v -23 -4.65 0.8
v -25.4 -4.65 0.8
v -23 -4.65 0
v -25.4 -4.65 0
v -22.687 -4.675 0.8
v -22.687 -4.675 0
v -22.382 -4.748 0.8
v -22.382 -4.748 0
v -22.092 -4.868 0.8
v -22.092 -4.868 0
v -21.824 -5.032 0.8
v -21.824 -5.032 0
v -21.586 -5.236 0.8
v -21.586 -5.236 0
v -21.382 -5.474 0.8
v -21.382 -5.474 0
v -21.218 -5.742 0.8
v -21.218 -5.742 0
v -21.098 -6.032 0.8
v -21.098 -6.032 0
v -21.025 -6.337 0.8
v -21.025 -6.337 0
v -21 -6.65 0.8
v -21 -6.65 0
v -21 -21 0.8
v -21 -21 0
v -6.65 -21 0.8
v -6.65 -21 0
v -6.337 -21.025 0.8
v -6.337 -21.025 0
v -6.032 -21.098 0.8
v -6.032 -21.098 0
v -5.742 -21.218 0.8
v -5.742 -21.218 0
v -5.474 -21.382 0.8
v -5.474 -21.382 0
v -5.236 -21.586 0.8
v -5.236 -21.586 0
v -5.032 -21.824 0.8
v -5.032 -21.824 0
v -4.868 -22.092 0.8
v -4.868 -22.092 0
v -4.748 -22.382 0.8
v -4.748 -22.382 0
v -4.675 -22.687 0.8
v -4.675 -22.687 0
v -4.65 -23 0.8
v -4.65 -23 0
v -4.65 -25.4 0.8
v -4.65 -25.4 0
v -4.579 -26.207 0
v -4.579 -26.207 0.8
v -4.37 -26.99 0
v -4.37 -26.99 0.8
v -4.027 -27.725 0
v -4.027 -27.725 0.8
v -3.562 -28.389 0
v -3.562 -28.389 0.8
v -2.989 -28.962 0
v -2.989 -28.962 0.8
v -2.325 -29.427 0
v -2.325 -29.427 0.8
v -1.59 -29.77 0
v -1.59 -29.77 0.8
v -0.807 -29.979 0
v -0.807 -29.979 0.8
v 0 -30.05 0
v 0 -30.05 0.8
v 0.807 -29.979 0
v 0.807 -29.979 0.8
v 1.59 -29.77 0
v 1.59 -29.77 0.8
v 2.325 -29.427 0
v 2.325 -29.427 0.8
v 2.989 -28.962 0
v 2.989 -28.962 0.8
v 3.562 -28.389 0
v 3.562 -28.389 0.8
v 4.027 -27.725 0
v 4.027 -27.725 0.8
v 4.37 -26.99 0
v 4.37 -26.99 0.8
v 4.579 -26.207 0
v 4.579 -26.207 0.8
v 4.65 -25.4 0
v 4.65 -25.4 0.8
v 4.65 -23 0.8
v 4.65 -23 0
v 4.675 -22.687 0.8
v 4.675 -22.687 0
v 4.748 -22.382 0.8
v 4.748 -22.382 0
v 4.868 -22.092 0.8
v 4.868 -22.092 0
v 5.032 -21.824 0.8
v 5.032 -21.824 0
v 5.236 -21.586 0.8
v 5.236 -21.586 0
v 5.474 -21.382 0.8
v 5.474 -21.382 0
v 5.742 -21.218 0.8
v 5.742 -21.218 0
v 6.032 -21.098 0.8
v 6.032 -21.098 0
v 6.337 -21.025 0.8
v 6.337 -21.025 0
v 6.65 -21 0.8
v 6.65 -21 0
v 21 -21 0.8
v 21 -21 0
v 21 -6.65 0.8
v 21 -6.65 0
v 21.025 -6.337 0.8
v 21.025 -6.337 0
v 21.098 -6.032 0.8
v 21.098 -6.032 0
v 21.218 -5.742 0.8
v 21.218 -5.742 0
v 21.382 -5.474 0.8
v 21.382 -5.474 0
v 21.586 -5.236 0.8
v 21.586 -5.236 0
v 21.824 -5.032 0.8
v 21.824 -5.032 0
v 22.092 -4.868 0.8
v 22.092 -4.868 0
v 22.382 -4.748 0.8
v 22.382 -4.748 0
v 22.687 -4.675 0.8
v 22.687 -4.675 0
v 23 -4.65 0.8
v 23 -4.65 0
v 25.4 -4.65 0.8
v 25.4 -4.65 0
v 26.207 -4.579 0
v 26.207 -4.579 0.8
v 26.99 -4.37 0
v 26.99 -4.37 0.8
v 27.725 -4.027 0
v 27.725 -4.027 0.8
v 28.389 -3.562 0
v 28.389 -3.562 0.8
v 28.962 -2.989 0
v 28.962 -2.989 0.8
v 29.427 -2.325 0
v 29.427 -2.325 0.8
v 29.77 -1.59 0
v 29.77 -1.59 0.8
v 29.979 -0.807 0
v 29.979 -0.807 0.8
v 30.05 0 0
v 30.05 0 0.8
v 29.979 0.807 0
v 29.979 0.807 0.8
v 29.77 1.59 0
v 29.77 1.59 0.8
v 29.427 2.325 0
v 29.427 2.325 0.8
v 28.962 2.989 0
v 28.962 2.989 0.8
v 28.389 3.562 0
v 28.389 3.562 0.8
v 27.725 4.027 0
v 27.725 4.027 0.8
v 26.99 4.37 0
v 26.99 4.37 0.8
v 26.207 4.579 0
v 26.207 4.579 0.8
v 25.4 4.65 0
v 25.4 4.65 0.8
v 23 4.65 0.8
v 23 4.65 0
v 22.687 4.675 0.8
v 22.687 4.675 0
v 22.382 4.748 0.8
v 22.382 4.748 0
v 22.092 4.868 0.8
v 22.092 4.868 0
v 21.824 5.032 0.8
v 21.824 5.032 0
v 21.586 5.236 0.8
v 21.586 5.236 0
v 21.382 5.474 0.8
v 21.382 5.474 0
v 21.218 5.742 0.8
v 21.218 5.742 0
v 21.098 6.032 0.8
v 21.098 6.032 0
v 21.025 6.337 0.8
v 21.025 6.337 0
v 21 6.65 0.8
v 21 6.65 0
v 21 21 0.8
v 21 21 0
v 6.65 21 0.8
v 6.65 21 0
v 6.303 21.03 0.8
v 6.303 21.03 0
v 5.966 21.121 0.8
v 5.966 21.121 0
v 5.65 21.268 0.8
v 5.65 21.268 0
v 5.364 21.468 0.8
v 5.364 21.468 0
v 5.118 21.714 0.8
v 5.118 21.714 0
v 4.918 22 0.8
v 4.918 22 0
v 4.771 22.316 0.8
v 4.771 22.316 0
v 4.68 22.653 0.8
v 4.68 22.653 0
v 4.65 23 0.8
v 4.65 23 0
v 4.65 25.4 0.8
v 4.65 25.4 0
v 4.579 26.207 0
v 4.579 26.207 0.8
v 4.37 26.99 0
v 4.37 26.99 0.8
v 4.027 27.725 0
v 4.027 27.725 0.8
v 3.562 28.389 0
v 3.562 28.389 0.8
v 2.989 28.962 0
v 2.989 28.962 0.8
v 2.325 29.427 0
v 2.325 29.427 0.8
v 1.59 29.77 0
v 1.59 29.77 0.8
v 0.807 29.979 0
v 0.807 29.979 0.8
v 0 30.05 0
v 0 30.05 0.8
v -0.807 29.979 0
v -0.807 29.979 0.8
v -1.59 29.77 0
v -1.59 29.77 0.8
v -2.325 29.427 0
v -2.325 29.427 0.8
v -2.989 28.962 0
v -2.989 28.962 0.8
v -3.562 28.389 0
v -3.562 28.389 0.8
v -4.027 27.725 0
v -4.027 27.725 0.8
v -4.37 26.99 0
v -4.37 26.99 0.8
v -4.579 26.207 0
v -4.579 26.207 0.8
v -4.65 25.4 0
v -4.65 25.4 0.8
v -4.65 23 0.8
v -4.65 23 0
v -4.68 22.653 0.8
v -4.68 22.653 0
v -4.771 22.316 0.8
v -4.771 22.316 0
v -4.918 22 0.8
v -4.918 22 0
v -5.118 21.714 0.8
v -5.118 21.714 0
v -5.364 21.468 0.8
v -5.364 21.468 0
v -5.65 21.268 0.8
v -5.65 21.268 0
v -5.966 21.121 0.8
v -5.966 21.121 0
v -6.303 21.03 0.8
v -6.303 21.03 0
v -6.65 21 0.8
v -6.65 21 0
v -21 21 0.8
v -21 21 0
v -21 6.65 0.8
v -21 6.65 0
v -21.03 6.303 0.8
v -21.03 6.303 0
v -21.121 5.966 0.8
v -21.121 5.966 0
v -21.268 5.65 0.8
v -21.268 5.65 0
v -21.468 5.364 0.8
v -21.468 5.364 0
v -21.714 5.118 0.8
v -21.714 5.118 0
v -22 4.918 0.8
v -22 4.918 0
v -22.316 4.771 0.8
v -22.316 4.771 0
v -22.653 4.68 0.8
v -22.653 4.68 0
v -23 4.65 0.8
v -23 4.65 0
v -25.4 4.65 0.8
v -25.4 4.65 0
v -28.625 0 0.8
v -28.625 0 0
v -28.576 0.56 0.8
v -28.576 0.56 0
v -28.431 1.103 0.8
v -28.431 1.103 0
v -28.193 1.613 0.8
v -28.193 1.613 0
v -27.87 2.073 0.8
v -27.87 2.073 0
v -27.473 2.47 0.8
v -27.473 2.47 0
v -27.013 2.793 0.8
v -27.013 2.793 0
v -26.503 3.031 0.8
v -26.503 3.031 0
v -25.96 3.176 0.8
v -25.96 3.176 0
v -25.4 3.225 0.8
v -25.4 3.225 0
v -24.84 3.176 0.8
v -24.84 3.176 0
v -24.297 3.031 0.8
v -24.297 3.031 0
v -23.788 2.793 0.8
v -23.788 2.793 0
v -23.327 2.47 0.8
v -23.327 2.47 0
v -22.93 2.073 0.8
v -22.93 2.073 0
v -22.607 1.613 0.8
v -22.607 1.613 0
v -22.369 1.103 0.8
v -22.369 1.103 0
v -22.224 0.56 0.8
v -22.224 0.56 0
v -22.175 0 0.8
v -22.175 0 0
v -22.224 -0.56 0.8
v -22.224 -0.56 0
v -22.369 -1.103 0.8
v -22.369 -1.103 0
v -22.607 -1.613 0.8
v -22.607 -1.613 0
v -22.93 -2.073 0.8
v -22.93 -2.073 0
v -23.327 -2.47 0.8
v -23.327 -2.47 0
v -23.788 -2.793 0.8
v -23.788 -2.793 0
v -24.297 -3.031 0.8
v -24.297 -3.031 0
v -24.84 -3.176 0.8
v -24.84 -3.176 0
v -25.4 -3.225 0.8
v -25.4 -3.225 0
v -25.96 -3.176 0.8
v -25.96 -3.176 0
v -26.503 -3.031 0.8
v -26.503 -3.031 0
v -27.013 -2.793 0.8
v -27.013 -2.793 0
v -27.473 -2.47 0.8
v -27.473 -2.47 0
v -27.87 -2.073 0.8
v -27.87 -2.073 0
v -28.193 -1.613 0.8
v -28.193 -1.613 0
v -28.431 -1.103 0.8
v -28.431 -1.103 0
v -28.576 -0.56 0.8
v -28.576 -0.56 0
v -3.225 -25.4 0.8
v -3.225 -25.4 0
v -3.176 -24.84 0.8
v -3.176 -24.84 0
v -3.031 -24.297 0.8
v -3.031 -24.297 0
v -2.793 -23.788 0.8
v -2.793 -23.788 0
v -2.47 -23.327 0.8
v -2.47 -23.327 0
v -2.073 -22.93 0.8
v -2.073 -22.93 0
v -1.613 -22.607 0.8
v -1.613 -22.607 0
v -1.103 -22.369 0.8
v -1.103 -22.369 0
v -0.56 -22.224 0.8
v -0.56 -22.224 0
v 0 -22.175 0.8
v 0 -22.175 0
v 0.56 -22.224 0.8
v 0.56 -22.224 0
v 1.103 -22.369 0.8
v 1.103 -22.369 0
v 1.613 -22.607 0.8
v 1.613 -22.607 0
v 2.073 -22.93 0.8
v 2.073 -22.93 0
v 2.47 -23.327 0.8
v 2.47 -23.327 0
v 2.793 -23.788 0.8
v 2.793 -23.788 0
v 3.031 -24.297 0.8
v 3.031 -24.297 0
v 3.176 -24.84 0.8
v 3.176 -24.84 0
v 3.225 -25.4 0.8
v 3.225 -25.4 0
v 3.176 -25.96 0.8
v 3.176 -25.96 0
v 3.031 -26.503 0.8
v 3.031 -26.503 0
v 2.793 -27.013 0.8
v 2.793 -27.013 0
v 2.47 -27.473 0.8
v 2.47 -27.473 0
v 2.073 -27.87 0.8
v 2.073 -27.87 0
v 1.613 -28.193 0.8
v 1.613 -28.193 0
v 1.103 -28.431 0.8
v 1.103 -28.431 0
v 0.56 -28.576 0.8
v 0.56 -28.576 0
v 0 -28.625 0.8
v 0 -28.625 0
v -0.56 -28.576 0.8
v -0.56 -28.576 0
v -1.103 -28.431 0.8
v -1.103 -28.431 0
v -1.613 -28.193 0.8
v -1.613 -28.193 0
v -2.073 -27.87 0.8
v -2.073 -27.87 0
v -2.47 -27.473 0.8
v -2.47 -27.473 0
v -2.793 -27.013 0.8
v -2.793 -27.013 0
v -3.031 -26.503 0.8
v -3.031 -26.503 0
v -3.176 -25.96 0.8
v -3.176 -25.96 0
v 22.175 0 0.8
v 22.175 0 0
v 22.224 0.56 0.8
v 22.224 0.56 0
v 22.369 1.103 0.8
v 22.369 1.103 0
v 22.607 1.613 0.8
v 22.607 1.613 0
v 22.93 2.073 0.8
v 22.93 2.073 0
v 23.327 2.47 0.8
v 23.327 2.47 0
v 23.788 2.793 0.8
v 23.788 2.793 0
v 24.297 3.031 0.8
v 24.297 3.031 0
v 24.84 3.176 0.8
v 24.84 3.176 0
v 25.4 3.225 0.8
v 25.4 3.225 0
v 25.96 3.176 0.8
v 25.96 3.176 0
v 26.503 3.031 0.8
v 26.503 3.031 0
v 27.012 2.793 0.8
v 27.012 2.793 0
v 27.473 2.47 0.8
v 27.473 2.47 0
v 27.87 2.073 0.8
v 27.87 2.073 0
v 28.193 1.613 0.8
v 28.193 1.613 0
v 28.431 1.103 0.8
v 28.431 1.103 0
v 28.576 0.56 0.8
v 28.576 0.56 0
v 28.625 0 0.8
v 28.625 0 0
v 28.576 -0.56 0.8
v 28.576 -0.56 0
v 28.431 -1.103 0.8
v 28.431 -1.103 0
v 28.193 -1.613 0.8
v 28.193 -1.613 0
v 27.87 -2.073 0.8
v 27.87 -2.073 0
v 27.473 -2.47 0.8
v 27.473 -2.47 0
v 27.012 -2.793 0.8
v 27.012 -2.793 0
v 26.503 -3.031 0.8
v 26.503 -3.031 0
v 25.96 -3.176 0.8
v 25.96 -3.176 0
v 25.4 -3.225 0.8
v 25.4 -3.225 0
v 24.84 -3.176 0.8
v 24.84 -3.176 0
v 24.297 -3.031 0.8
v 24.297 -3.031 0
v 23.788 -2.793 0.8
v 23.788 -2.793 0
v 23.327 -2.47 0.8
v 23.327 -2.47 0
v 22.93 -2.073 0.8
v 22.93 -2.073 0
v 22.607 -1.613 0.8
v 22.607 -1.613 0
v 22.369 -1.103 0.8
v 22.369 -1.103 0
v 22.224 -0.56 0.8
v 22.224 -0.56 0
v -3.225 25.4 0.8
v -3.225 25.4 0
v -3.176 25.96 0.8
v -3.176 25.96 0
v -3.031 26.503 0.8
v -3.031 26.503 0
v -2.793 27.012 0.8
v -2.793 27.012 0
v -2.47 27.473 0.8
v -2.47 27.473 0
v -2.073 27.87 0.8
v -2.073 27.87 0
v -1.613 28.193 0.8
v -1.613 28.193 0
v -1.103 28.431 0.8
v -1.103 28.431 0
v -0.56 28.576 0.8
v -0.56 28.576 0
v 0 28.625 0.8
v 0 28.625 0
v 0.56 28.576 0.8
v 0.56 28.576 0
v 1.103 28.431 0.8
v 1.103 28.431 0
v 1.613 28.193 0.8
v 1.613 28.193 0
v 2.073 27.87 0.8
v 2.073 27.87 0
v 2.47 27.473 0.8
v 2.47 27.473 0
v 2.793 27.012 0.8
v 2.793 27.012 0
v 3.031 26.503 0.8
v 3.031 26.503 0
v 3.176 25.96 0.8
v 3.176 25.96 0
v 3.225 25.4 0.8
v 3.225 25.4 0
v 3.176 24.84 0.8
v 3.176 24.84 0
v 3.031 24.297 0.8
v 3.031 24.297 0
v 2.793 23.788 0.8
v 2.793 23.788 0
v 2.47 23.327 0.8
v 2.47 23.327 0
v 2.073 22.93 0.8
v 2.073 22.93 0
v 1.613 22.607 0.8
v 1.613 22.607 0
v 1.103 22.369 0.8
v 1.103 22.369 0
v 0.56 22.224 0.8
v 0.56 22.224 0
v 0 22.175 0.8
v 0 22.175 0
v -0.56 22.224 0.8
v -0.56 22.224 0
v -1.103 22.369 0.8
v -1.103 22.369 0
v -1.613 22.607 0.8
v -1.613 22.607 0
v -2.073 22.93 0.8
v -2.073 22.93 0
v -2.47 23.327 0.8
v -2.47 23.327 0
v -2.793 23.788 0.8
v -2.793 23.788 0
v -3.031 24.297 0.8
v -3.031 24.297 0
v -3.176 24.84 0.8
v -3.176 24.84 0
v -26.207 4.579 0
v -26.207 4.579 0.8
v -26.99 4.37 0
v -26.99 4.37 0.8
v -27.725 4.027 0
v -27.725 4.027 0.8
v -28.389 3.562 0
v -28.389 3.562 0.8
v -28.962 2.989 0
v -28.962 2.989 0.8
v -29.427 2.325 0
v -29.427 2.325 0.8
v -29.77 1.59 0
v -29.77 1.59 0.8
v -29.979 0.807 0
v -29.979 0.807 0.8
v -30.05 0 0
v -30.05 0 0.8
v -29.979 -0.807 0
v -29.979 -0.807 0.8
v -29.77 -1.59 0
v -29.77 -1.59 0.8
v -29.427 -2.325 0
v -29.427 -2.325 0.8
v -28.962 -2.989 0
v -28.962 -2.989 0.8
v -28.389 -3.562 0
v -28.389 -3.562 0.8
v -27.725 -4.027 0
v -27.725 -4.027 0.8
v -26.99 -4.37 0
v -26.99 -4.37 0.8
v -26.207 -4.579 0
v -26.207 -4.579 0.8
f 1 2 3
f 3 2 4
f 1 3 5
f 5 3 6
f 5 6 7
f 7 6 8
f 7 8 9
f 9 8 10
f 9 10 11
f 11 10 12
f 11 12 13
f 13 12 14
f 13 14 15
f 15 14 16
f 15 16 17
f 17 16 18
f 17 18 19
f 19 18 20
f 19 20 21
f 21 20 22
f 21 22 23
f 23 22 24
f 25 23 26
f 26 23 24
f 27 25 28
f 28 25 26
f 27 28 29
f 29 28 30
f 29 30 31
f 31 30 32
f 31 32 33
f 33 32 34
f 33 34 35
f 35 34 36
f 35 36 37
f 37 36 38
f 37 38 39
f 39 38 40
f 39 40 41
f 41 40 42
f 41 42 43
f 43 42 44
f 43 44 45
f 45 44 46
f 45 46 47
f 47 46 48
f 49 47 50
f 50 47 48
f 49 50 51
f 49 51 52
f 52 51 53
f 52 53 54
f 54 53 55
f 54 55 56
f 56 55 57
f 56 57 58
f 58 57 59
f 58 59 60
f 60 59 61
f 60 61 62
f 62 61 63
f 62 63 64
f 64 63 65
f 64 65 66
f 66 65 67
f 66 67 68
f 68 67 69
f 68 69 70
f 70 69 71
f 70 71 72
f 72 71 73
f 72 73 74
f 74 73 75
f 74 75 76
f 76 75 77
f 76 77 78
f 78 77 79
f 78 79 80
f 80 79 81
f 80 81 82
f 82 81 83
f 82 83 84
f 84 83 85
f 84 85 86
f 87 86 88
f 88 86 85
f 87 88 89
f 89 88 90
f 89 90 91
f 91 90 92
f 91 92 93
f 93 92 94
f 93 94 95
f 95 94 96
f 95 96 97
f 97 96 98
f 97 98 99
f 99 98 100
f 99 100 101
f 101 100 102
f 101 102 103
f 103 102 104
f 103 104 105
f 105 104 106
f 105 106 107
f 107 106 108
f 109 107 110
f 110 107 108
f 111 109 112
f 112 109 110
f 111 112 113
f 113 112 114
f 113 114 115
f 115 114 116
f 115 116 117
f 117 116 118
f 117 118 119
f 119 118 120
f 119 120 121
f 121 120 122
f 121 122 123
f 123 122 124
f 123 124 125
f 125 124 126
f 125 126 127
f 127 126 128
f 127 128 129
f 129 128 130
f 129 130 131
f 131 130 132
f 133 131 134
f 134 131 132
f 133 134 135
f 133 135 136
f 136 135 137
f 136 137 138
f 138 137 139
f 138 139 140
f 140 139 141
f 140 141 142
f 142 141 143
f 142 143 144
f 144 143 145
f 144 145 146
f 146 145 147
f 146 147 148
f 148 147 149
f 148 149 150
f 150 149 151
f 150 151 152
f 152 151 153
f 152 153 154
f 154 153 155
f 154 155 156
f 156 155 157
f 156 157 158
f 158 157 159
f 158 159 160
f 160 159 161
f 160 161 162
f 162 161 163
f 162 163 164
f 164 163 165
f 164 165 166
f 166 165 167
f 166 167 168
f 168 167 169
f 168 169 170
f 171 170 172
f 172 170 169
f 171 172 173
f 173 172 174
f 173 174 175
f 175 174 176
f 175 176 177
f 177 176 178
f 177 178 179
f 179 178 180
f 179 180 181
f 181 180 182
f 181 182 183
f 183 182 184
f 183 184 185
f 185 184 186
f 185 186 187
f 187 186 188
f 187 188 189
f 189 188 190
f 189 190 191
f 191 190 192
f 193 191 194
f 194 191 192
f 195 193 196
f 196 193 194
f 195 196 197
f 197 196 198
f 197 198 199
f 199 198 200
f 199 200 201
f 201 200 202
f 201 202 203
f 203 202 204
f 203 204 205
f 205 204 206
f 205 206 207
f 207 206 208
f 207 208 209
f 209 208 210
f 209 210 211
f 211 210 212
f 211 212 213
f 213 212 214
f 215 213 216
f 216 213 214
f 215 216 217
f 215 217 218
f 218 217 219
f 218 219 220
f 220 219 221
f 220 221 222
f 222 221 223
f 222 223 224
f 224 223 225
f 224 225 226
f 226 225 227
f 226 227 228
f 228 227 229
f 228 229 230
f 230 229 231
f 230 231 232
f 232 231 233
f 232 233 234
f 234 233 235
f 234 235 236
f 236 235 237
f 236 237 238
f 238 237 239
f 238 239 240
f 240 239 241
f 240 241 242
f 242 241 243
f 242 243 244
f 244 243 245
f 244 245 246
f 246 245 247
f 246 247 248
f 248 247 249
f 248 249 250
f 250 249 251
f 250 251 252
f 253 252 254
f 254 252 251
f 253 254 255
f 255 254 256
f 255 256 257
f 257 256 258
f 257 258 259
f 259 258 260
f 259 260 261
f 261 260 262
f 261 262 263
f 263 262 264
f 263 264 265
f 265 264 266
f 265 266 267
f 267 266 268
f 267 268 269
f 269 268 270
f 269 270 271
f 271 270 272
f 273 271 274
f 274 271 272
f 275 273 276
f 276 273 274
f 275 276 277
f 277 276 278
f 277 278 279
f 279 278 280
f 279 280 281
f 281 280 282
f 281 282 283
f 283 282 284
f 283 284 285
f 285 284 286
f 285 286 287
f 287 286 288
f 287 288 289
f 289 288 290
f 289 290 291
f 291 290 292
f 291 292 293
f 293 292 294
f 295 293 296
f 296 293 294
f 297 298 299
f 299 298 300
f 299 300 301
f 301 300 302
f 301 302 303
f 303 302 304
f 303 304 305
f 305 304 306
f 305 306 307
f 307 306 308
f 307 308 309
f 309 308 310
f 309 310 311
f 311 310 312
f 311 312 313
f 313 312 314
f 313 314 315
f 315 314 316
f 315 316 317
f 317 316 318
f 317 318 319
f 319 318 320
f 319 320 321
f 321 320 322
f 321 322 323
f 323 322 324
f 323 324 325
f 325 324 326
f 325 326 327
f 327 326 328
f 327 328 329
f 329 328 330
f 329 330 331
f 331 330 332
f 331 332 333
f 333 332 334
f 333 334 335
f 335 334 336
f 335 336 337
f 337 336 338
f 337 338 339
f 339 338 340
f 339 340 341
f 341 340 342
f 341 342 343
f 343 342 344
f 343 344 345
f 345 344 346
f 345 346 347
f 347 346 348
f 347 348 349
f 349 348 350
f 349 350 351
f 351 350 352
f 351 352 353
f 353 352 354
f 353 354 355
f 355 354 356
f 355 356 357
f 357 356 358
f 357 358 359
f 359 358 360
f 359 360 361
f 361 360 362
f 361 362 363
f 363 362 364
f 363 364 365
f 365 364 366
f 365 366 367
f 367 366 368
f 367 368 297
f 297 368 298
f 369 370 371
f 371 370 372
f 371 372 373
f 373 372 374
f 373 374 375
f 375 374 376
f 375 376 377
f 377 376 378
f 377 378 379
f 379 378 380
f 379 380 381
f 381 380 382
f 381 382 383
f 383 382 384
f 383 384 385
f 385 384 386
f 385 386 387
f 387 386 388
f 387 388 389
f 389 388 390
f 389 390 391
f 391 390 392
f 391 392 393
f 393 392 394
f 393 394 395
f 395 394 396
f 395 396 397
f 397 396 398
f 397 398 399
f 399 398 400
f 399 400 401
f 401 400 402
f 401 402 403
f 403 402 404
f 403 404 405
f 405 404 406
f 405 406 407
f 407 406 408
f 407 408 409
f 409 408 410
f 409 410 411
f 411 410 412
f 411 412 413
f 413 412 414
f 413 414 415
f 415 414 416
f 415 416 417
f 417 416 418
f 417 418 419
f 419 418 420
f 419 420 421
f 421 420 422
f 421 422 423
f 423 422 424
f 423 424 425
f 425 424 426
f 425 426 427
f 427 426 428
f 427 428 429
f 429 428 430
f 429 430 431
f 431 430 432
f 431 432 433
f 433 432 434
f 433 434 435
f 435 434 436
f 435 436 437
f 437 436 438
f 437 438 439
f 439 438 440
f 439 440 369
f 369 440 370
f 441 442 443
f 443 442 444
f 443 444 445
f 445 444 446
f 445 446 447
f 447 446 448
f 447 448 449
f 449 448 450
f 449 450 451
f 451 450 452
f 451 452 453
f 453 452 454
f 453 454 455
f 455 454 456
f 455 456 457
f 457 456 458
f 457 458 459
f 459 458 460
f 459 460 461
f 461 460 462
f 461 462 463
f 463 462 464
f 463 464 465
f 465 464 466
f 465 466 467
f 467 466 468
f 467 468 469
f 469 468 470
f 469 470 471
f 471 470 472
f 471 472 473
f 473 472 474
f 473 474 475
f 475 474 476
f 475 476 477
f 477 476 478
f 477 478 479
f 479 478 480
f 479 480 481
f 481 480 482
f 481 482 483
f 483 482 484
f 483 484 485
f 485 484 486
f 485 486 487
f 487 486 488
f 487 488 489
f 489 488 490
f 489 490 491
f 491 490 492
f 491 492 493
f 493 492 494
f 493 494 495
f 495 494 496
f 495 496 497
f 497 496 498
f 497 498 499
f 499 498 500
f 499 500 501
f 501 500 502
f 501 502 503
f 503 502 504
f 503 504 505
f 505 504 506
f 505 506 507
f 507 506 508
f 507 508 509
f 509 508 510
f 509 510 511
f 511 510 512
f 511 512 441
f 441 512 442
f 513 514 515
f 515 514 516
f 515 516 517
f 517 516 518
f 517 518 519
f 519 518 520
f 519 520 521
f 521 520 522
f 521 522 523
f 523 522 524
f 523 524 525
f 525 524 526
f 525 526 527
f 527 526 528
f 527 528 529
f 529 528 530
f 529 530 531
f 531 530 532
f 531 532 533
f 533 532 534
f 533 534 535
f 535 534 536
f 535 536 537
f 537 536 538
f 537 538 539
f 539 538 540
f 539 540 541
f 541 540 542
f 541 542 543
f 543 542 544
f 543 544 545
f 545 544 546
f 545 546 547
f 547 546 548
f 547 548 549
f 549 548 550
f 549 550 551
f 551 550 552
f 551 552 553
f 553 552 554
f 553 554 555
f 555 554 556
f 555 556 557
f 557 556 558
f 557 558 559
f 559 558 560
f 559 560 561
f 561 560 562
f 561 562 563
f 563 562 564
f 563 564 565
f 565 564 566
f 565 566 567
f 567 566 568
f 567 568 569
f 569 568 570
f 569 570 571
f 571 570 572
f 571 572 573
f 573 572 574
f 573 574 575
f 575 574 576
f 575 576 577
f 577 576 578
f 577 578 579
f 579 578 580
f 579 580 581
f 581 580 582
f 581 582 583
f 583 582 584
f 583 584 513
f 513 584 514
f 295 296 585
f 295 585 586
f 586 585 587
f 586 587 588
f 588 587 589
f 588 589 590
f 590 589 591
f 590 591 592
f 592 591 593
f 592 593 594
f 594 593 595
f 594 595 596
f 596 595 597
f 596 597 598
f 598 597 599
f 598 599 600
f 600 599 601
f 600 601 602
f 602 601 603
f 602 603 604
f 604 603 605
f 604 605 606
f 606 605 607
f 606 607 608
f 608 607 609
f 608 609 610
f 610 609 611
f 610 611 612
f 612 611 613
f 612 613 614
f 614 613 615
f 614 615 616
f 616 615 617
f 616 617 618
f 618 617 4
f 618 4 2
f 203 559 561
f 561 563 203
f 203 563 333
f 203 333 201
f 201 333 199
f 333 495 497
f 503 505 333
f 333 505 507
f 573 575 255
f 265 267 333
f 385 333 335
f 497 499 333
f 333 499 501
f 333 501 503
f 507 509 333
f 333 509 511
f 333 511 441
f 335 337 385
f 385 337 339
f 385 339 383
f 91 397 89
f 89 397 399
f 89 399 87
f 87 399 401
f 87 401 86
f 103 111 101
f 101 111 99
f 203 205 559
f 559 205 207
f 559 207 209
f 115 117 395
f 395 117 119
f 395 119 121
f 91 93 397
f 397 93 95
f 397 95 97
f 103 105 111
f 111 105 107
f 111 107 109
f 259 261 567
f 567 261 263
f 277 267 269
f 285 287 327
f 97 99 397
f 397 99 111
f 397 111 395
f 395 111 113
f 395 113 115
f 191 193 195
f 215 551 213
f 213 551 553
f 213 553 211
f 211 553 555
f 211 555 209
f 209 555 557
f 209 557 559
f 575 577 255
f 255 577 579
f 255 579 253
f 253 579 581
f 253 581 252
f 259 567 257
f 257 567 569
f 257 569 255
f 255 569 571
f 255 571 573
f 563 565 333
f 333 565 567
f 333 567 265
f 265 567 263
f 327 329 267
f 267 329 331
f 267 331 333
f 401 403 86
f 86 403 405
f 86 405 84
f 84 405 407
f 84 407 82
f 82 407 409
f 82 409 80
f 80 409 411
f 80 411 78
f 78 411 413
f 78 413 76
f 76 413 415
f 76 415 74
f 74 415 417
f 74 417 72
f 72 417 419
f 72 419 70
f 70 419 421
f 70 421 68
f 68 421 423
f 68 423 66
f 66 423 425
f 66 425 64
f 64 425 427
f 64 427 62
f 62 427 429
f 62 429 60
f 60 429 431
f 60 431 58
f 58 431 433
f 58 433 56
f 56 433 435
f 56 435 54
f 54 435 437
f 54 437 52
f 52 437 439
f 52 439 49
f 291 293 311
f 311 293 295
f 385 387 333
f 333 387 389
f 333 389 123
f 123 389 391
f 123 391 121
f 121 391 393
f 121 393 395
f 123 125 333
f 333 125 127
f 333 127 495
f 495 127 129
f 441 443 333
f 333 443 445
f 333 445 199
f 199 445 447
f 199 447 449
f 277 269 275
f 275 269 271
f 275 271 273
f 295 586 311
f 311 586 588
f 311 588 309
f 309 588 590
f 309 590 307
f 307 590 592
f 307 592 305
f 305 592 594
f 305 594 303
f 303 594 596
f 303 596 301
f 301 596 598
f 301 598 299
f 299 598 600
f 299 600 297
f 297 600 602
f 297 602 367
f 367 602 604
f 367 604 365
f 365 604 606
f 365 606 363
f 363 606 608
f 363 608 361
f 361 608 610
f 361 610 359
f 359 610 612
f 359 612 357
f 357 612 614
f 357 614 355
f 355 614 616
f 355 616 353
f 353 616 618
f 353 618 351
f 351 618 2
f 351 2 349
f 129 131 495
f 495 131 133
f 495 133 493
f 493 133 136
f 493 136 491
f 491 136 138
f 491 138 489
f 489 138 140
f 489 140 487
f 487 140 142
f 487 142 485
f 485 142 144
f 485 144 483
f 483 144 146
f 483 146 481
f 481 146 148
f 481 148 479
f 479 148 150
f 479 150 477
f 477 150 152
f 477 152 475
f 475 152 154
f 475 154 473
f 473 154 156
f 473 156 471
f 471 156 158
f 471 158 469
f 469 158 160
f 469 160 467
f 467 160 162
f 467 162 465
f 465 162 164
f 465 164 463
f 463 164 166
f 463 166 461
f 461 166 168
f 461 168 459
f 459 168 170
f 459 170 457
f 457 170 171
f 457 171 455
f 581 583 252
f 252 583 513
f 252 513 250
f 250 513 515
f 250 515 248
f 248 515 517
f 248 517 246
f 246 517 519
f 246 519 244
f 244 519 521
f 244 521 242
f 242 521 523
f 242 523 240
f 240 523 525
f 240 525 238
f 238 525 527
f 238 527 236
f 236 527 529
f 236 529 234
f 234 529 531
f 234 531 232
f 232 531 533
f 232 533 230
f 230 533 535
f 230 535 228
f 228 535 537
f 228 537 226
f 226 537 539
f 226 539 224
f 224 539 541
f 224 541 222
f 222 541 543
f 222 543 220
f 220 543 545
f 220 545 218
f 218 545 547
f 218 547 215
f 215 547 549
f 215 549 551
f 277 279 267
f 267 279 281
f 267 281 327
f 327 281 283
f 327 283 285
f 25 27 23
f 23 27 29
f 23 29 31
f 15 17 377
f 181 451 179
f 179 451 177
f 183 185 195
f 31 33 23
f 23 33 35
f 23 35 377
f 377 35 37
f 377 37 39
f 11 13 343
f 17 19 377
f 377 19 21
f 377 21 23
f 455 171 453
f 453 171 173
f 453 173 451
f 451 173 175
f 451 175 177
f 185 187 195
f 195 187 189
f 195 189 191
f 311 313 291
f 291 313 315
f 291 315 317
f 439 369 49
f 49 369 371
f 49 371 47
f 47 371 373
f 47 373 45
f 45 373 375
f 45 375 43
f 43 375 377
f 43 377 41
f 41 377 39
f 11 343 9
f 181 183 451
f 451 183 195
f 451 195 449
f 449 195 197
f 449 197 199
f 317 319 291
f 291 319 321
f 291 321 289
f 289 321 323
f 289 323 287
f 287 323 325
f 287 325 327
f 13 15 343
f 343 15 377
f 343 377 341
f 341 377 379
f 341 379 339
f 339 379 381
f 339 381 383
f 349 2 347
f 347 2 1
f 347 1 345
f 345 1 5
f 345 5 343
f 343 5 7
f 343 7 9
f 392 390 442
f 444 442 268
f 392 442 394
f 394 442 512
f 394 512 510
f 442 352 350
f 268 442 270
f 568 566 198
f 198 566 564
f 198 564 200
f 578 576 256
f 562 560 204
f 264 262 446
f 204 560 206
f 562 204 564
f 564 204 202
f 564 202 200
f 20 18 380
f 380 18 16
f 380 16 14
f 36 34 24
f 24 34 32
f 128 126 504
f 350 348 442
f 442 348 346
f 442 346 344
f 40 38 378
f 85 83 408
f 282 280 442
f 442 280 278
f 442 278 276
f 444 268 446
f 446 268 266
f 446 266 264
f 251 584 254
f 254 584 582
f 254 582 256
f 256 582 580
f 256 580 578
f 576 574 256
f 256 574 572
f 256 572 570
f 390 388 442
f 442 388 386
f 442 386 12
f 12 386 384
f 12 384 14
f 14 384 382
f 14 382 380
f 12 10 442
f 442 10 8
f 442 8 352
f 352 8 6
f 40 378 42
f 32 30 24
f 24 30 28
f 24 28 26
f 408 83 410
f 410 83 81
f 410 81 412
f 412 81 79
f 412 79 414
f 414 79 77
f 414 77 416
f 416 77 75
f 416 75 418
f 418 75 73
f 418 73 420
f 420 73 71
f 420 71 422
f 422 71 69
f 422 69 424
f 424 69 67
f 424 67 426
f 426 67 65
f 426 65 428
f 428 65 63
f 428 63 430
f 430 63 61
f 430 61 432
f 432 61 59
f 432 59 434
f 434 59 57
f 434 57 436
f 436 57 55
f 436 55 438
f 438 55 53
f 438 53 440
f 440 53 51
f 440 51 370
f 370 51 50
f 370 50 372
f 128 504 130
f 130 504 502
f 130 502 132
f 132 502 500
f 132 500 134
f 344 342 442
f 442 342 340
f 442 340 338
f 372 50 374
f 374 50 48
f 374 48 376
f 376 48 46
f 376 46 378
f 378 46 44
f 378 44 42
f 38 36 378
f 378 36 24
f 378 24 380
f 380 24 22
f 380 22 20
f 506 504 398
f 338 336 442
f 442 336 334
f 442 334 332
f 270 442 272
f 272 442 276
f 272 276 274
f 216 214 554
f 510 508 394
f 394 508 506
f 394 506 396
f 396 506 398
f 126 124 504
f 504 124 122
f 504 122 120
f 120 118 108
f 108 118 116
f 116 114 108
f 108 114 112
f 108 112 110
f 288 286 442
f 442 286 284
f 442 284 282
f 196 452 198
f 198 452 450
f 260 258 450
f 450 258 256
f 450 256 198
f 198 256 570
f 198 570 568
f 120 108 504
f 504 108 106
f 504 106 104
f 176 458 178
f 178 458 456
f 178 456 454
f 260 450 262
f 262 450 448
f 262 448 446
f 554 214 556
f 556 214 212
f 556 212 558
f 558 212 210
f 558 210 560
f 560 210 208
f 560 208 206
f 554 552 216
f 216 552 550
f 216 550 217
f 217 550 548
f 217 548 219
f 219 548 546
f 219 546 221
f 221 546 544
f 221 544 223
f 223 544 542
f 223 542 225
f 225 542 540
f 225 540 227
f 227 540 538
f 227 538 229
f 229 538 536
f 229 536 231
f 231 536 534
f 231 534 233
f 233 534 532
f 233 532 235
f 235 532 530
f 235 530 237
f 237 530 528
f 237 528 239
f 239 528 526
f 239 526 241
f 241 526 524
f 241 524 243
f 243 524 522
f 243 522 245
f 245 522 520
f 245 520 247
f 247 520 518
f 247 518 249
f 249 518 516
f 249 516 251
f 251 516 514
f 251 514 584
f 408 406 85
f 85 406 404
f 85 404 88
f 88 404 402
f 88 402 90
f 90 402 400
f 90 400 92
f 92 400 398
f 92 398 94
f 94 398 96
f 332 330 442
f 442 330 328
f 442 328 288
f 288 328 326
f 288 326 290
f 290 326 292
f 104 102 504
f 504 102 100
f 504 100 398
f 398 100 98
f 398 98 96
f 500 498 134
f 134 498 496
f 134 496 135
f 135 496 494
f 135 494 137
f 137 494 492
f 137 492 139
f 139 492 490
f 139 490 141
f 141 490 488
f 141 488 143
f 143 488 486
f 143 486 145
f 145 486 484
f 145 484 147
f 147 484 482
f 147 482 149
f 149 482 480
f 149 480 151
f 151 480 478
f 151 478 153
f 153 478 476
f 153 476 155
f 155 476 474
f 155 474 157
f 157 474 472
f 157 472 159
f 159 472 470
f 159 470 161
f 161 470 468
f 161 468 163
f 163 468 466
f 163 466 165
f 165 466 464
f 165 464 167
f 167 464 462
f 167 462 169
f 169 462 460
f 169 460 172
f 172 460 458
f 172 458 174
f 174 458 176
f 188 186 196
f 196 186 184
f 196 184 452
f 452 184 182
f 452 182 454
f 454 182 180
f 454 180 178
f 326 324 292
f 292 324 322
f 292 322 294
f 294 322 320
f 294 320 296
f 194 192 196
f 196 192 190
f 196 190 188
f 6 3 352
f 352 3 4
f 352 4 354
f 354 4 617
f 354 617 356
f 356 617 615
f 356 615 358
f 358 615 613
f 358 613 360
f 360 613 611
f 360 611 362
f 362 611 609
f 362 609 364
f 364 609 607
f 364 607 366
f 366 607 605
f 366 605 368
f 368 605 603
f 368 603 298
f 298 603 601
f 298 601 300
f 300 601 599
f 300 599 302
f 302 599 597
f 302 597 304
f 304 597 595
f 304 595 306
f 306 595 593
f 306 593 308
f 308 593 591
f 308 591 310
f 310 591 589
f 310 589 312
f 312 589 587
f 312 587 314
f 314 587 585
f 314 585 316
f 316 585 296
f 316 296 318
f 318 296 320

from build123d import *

# Parameters (mm, degrees)
SKETCH1_R           = 3.225
BOSS_EXTRUDE1_DEPTH = 0.8


with BuildPart() as part:
    # Sketch1 → Boss-Extrude1 (new body)
    with BuildSketch(Plane.XY):
        with BuildLine():
            ThreePointArc((4.65, 25.4), (0, 30.05), (-4.65, 25.4))
            Line((-4.65, 25.4), (-4.65, 23))
            ThreePointArc((-4.65, 23), (-5.235786438, 21.585786438), (-6.65, 21))
            Line((-6.65, 21), (-8.759132098, 21))
            Line((-8.759132098, 21), (-21, 21))
            Line((-21, 21), (-21, 7.133487824))
            Line((-21, 7.133487824), (-21, 6.65))
            ThreePointArc((-21, 6.65), (-21.585786438, 5.235786438), (-23, 4.65))
            Line((-23, 4.65), (-25.4, 4.65))
            ThreePointArc((-25.4, 4.65), (-30.05, 0), (-25.4, -4.65))
            Line((-25.4, -4.65), (-23, -4.65))
            ThreePointArc((-23, -4.65), (-21.585786438, -5.235786438), (-21, -6.65))
            Line((-21, -6.65), (-21, -8.759132098))
            Line((-21, -8.759132098), (-21, -21))
            Line((-21, -21), (-7.133487824, -21))
            Line((-7.133487824, -21), (-6.65, -21))
            ThreePointArc((-6.65, -21), (-5.235786438, -21.585786438), (-4.65, -23))
            Line((-4.65, -23), (-4.65, -25.4))
            ThreePointArc((-4.65, -25.4), (0, -30.05), (4.65, -25.4))
            Line((4.65, -25.4), (4.65, -23))
            ThreePointArc((4.65, -23), (5.235786438, -21.585786438), (6.65, -21))
            Line((6.65, -21), (8.759132098, -21))
            Line((8.759132098, -21), (21, -21))
            Line((21, -21), (21, -7.133487824))
            Line((21, -7.133487824), (21, -6.65))
            ThreePointArc((21, -6.65), (21.585786438, -5.235786438), (23, -4.65))
            Line((23, -4.65), (25.4, -4.65))
            ThreePointArc((25.4, -4.65), (30.05, 0), (25.4, 4.65))
            Line((25.4, 4.65), (23, 4.65))
            ThreePointArc((23, 4.65), (21.585786438, 5.235786438), (21, 6.65))
            Line((21, 6.65), (21, 8.759132098))
            Line((21, 8.759132098), (21, 21))
            Line((21, 21), (7.133487824, 21))
            Line((7.133487824, 21), (6.65, 21))
            ThreePointArc((6.65, 21), (5.235786438, 21.585786438), (4.65, 23))
            Line((4.65, 23), (4.65, 25.4))
        make_face()
        with Locations((0, -25.4)):
            Circle(SKETCH1_R, mode=Mode.SUBTRACT)
        with Locations((25.4, 0)):
            Circle(SKETCH1_R, mode=Mode.SUBTRACT)
        with Locations((-25.4, 0)):
            Circle(SKETCH1_R, mode=Mode.SUBTRACT)
        with Locations((0, 25.4)):
            Circle(SKETCH1_R, mode=Mode.SUBTRACT)
    extrude(amount=BOSS_EXTRUDE1_DEPTH)


solid = part.part
